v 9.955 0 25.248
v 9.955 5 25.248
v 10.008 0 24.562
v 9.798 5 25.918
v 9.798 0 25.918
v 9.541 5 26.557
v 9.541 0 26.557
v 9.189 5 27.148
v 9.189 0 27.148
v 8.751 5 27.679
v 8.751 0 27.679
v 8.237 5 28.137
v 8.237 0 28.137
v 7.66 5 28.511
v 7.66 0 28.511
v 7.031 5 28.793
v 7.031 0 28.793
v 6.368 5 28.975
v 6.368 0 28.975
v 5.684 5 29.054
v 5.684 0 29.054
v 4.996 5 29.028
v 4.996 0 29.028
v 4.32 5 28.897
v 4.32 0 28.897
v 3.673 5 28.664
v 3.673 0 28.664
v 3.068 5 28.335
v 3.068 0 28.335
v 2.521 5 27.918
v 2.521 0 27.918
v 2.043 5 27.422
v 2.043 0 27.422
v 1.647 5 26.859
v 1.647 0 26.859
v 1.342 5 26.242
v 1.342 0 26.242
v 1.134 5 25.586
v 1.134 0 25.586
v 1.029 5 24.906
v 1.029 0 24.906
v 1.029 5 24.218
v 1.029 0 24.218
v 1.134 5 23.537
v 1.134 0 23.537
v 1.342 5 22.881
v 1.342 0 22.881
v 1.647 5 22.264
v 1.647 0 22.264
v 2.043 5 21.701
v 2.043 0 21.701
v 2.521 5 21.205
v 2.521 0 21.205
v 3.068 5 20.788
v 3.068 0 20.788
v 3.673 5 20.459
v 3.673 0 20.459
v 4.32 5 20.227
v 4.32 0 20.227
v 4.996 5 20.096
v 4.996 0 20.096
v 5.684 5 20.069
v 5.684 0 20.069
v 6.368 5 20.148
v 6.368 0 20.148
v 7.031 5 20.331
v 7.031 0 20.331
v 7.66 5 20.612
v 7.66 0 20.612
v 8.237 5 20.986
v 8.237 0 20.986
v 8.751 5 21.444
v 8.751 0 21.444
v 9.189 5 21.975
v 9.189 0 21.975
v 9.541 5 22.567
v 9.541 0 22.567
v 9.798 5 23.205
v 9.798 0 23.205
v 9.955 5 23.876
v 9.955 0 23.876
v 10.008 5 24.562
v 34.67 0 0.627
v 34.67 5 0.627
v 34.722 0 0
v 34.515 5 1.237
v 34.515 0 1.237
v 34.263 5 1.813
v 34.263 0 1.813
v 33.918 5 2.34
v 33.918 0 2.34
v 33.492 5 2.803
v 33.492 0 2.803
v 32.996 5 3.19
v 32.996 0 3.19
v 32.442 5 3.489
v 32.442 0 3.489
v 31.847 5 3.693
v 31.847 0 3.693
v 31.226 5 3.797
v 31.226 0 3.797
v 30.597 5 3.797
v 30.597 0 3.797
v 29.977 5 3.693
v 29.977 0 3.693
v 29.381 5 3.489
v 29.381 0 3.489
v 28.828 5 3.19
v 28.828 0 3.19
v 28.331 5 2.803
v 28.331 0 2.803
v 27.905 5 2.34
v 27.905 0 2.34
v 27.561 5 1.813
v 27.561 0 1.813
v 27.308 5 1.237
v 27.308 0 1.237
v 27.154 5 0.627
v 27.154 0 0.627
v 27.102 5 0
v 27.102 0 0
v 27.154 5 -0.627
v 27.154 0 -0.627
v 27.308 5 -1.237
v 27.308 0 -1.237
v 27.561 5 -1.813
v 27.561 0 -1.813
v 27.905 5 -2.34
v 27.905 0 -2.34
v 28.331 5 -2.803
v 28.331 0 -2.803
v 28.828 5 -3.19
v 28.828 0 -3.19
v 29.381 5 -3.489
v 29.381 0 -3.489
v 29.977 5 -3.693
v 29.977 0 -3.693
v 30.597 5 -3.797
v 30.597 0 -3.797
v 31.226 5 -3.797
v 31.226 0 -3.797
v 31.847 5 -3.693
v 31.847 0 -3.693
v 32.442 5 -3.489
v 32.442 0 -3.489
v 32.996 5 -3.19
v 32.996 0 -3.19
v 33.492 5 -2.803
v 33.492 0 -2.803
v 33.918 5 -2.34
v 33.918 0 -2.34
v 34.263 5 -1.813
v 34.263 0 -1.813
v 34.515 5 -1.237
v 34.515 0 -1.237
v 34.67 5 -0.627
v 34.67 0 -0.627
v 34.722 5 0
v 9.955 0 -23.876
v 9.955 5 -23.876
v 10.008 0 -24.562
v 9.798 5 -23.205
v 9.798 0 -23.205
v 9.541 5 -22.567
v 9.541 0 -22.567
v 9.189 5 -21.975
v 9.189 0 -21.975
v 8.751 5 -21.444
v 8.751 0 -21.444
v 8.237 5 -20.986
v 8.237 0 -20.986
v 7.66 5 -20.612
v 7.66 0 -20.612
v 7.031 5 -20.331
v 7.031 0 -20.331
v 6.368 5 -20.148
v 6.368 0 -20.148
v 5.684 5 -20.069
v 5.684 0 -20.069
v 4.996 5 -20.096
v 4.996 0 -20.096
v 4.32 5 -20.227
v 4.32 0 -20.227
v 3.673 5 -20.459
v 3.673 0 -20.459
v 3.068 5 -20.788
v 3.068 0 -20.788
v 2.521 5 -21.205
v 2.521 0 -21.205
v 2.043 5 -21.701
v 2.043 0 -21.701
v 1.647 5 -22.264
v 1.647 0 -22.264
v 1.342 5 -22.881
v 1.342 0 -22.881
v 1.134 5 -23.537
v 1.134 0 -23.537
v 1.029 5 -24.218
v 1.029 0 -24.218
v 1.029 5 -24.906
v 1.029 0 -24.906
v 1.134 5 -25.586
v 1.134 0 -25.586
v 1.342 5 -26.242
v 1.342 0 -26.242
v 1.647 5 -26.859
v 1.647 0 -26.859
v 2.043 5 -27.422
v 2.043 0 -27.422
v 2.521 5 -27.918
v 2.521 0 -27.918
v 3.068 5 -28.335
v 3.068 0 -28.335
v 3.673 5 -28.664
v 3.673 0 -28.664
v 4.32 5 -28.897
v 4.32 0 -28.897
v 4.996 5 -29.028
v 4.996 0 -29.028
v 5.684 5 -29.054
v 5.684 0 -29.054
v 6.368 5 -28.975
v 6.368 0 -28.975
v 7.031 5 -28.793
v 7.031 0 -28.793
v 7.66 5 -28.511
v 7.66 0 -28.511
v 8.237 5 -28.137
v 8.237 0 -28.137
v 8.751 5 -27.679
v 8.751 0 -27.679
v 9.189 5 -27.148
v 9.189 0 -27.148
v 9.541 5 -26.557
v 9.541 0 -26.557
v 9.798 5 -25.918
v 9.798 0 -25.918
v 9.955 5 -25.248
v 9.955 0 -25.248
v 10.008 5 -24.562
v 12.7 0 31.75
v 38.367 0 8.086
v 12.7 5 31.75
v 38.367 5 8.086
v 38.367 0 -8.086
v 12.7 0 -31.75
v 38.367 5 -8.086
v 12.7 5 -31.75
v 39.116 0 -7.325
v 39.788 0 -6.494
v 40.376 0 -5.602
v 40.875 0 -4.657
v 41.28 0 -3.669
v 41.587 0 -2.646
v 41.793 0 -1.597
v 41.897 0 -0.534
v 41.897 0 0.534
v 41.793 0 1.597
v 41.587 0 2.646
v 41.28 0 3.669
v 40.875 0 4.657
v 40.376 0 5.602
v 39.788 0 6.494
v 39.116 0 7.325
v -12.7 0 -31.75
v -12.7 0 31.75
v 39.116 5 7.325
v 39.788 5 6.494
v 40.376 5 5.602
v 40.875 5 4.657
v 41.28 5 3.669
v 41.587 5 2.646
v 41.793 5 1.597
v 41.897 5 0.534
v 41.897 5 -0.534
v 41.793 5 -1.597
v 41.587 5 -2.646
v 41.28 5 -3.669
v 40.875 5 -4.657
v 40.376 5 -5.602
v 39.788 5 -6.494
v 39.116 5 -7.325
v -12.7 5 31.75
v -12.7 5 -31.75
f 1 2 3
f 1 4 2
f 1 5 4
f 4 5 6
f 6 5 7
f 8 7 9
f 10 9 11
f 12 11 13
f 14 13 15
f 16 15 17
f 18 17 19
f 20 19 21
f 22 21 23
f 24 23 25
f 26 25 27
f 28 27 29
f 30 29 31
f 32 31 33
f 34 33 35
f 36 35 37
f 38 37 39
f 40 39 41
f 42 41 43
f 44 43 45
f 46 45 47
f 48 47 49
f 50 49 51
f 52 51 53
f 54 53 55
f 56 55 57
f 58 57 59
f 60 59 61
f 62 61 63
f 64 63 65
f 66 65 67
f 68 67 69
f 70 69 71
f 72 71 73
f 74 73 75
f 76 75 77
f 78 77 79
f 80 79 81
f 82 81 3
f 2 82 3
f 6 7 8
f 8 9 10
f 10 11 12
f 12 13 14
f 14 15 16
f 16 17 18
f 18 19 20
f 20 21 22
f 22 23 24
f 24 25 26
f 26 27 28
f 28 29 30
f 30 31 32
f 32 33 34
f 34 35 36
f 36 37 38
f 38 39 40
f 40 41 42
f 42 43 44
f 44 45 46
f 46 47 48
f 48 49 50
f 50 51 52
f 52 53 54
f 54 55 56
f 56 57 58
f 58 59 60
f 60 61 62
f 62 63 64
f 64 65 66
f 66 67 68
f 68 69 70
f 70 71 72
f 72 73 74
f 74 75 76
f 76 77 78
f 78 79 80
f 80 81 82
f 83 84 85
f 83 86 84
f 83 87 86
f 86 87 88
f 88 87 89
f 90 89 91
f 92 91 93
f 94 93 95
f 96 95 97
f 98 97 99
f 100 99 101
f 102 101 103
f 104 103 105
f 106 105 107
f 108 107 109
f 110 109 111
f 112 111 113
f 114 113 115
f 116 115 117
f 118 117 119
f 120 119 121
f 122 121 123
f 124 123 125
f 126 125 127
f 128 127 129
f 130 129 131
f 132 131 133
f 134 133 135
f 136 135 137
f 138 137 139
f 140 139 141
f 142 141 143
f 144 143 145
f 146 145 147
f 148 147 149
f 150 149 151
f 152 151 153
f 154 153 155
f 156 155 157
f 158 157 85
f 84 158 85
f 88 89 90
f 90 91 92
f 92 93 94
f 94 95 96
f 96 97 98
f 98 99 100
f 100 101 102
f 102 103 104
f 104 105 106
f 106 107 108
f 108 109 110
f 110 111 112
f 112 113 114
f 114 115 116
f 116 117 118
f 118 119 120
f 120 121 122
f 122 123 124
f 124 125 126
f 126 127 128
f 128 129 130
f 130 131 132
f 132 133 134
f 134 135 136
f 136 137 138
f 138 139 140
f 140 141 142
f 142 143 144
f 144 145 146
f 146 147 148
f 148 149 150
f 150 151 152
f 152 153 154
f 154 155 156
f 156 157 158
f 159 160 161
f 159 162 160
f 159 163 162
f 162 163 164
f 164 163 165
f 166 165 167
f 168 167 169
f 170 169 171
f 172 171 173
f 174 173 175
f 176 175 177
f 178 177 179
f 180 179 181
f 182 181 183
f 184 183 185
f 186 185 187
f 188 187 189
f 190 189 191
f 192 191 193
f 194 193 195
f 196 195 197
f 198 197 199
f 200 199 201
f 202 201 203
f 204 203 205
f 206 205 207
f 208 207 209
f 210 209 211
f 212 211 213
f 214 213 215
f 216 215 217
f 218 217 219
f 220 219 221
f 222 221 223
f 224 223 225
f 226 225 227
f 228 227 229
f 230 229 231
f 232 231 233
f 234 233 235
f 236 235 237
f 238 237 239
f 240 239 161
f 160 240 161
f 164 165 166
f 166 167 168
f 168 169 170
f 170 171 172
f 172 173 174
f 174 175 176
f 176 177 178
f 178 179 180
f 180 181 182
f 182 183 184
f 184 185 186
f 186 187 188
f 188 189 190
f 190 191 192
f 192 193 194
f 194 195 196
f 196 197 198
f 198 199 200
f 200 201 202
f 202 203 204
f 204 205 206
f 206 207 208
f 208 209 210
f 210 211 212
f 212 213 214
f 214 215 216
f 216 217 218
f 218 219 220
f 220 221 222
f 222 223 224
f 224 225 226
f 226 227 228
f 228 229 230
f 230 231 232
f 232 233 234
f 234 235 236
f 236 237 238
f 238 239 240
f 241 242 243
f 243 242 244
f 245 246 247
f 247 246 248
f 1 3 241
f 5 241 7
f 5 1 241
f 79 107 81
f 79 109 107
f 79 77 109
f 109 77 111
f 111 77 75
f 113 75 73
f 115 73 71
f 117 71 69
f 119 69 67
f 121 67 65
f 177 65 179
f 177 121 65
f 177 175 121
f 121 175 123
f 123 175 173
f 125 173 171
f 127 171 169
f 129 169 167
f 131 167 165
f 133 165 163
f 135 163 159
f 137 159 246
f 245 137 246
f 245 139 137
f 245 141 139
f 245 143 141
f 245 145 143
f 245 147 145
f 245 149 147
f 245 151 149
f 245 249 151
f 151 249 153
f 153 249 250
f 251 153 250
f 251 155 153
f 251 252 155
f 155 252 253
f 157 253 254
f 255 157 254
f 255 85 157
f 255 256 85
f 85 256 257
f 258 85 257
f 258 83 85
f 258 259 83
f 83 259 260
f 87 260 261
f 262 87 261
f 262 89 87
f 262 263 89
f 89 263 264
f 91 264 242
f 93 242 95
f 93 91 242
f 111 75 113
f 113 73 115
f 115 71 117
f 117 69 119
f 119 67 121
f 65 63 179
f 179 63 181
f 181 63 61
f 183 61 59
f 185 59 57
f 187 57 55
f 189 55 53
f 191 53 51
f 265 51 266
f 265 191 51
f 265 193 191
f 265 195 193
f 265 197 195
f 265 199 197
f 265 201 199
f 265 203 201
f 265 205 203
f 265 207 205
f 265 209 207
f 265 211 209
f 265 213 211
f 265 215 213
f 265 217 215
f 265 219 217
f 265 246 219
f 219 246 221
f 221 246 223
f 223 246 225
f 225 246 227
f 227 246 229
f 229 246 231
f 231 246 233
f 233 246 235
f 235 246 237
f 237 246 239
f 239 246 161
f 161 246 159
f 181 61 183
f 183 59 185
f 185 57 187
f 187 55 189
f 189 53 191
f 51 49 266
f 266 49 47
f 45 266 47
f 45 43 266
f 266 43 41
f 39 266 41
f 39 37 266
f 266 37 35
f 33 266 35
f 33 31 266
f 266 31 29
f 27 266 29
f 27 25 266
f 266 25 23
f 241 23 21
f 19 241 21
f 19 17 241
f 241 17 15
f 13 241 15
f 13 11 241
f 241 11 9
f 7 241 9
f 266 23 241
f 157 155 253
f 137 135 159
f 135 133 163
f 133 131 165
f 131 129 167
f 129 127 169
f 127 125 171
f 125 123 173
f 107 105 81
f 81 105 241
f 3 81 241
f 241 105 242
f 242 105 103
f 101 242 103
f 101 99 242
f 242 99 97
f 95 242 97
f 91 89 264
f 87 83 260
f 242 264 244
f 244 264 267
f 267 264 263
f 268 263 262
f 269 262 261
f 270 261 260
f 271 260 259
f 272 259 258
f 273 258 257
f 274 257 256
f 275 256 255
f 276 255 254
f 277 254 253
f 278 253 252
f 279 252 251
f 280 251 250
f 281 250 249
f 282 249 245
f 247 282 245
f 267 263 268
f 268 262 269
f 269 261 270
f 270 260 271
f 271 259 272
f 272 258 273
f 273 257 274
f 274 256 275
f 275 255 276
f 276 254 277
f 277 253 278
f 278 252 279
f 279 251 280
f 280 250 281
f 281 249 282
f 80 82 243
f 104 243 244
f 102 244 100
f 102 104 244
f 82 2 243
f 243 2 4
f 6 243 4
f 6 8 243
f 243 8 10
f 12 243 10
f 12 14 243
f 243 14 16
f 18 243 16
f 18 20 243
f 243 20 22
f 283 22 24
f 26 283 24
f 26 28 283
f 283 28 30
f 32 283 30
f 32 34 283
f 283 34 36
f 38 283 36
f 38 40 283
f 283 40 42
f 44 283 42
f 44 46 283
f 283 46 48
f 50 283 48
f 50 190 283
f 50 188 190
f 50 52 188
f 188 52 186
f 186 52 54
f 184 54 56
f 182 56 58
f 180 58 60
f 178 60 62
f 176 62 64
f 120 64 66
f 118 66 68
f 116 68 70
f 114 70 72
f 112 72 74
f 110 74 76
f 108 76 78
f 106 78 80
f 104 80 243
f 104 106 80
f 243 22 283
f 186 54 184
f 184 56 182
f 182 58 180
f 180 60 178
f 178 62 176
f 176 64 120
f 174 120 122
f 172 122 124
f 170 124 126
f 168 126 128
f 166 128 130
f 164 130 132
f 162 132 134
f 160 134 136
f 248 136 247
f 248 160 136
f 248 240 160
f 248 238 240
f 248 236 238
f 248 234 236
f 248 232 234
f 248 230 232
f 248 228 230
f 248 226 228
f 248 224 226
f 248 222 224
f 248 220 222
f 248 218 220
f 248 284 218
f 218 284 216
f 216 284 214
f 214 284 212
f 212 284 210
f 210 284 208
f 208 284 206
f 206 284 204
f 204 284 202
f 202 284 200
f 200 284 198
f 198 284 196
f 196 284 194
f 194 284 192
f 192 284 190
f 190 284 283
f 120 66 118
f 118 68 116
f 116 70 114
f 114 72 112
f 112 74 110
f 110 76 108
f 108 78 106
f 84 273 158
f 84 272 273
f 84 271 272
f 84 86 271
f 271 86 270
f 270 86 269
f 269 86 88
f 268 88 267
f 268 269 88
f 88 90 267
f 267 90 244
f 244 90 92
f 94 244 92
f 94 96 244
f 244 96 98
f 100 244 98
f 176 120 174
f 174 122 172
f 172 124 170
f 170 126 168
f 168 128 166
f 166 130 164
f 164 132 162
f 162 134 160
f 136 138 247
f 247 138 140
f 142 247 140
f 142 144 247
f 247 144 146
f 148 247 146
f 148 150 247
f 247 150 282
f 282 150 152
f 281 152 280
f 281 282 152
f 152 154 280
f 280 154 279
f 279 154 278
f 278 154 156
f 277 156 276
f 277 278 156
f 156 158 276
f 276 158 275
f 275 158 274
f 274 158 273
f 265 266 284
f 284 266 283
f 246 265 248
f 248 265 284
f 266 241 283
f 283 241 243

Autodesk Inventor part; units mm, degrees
ref_plane "YZ Plane" through (0, 0, 0) normal (1, 0, 0) x (0, 1, 0)
ref_plane "XZ Plane" through (0, 0, 0) normal (0, 1, 0) x (-1, 0, 0)
ref_plane "XY Plane" through (0, 0, 0) normal (0, 0, 1) x (1, 0, 0)
sketch "Sketch1" plane through (0, 0, 0) normal (0, 1, 0) x (-1, 0, 0)
  line L0 (12.7, -31.75) -> (-12.7, -31.75)
  line L1 (-12.7, -31.75) -> (-12.7, 31.75)
  line L2 (-12.7, 31.75) -> (12.7, 31.75)
  line L3 (12.7, 31.75) -> (12.7, -31.75)
  line L4 (12.7, -31.75) -> (-12.7, 31.75) construction
  line L5 (-12.7, -31.75) -> (12.7, 31.75) construction
  line L6 (-5.5118, -31.75) -> (-5.5118, 31.75)
  line L7 (12.7, 0) -> (-12.7, 0)
  circle A0 centre (-5.5118, 24.5618) radius 3.5052
  circle A1 centre (-5.5118, -24.5618) radius 3.5052
  line L8 (88.6284, 0) -> (-89.1716, 0)
  circle A2 centre (-30.9118, 0) radius 3.81
  line L9 (12.7, 31.75) -> (-12.7, 31.75)
  circle A3 centre (-30.9118, 0) radius 10.9982
  point P0 (0, 0)
  dimension "d0" = 25.4
  dimension "d1" = 63.5
  dimension "d2" = 7.1882
  dimension "d3" = 7.1882
  dimension "d4" = 7.0104
  dimension "d5" = 7.62
  dimension "d6" = 177.8
  dimension "d7" = 0
  dimension "d8" = 25.4
  dimension "d10" = 7.1882
extrude "Extrusion1" add sketch "Sketch1" along normal blind 5
sketch "Sketch2" plane through (0, 5, 0) normal (0, 1, 0) x (1, 0, 0)
  line L0 (12.7, -31.75) -> (38.3668, -8.086)
  circle A0 centre (30.9118, 0) radius 10.9982 projected
  circle A1 centre (30.9118, 0) radius 10.9982 projected
  line L1 (-12.7, 31.75) -> (-12.7, -31.75) projected
  line L2 (-12.7, 0) -> (12.7, 0)
  line L3 (12.7, -31.75) -> (12.7, 31.75) projected
  line L4 (12.7, 31.75) -> (38.3668, 8.086)
  line L5 (38.3668, 8.086) -> (38.3668, -8.086)
  line L6 (12.7, -31.75) -> (12.7, 31.75)
  point P0 (0, 0)
extrude "Extrusion2" add sketch "Sketch2" against normal up to surface (5 mm away) contours L3 L4 A0 L0 | A0 L5 picked at (33.4709, -2.7618)
sketch "Sketch3" plane through (0, 5, 0) normal (0, 1, 0) x (1, 0, 0)
  line L0 (12.7, 31.75) -> (12.7, -31.75)
  line L1 (12.7, 31.75) -> (-12.7, 31.75) projected
  line L2 (5.5118, 31.75) -> (5.5118, -31.75)
  line L3 (-12.7, -31.75) -> (12.7, -31.75) projected
  circle A0 centre (5.5118, 24.5618) radius 4.4958
  line L4 (-12.7, 31.75) -> (-12.7, -31.75) projected
  line L5 (-12.7, 0) -> (12.7, 0)
  circle A1 centre (5.5118, -24.5618) radius 4.4958
  circle A2 centre (30.9118, 0) radius 3.81
  point P0 (0, 0)
  dimension "d15" = 7.1882
  dimension "d16" = 7.1882
  dimension "d17" = 8.9916
  dimension "d18" = 25.4
  dimension "d19" = 7.62
extrude "Extrusion3" cut sketch "Sketch3" against normal through all contours A0 L2 | L2 A0 | A1 L2 | L2 A1 | A2
properties part number "Foundation 6_2"
